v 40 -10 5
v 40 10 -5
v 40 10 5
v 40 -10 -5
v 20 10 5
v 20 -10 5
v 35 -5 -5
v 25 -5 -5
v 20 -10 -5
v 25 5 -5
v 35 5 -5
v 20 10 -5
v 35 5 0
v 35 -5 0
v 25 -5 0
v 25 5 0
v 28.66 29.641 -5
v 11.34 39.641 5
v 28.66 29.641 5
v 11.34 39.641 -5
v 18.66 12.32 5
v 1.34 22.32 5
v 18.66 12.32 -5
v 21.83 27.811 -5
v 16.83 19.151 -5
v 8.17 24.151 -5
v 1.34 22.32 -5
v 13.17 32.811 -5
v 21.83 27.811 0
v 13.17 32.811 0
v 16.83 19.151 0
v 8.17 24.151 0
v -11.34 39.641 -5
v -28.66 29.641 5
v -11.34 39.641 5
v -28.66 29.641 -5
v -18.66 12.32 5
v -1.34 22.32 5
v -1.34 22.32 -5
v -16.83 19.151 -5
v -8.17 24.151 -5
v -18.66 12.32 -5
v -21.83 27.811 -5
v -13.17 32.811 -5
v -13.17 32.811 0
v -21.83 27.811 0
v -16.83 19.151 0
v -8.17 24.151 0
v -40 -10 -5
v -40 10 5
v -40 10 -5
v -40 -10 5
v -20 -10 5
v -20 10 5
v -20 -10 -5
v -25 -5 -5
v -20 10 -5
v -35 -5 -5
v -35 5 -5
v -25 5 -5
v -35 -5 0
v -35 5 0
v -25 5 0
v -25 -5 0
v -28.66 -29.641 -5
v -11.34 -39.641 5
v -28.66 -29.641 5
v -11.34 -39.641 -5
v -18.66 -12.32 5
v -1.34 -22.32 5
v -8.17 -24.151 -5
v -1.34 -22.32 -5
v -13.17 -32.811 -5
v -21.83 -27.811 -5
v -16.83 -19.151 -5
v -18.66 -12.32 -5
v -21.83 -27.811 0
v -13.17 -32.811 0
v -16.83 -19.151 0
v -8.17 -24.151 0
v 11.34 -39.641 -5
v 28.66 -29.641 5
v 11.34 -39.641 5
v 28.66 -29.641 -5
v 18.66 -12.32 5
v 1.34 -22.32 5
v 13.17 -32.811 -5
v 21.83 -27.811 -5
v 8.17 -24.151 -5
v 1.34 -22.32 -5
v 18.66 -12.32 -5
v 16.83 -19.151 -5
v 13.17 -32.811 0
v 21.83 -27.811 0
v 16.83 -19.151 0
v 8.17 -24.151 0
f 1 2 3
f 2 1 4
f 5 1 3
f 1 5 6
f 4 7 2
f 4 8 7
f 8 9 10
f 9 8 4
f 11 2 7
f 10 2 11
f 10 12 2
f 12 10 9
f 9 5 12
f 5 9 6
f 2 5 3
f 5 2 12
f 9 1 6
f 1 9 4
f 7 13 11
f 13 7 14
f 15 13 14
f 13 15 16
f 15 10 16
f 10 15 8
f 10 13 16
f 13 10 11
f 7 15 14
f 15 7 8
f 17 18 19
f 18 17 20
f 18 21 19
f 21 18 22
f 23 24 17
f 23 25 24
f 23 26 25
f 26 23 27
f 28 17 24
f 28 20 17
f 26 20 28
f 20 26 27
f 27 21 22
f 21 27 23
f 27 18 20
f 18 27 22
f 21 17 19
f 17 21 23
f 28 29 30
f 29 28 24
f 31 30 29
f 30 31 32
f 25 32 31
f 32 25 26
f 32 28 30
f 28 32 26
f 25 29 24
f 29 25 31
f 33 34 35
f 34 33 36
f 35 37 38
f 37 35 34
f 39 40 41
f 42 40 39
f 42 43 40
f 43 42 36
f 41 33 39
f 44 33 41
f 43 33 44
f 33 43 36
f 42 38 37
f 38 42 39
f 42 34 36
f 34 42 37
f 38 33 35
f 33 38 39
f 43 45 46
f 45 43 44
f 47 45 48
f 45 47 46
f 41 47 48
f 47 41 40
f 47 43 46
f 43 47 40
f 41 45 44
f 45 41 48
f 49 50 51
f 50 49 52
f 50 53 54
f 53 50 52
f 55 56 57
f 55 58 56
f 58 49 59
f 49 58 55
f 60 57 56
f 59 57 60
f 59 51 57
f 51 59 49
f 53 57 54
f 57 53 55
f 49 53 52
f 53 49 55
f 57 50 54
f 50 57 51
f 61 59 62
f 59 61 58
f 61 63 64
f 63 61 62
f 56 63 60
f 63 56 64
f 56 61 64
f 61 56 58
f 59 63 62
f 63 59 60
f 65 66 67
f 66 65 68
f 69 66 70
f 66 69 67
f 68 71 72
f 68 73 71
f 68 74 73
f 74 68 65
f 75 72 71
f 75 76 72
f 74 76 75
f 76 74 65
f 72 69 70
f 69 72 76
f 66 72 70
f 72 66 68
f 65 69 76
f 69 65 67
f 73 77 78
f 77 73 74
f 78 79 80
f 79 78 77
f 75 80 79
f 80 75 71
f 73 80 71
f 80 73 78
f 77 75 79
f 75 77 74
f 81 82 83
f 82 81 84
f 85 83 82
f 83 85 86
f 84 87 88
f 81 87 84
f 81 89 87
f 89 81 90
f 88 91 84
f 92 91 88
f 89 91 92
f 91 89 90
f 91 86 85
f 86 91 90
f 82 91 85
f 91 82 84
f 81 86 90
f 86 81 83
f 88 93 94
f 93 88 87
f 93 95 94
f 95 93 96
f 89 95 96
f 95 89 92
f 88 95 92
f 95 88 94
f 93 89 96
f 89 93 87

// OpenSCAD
// Parameters for the U-shaped block
module u_shaped_block() {
    difference() {
        // Outer block
        cube([20, 20, 10], center = true);
        // Inner cutout
        translate([0, 0, -5]) {
            cube([10, 10, 10], center = true);
        }
    }
}

// Arrange the U-shaped blocks in a uniform layer
module layer_1() {
    for (i = [0:5]) {
        rotate([0, 0, i * 60]) {
            translate([30, 0, 0]) {
                u_shaped_block();
            }
        }
    }
}

// Main model
layer_1();
